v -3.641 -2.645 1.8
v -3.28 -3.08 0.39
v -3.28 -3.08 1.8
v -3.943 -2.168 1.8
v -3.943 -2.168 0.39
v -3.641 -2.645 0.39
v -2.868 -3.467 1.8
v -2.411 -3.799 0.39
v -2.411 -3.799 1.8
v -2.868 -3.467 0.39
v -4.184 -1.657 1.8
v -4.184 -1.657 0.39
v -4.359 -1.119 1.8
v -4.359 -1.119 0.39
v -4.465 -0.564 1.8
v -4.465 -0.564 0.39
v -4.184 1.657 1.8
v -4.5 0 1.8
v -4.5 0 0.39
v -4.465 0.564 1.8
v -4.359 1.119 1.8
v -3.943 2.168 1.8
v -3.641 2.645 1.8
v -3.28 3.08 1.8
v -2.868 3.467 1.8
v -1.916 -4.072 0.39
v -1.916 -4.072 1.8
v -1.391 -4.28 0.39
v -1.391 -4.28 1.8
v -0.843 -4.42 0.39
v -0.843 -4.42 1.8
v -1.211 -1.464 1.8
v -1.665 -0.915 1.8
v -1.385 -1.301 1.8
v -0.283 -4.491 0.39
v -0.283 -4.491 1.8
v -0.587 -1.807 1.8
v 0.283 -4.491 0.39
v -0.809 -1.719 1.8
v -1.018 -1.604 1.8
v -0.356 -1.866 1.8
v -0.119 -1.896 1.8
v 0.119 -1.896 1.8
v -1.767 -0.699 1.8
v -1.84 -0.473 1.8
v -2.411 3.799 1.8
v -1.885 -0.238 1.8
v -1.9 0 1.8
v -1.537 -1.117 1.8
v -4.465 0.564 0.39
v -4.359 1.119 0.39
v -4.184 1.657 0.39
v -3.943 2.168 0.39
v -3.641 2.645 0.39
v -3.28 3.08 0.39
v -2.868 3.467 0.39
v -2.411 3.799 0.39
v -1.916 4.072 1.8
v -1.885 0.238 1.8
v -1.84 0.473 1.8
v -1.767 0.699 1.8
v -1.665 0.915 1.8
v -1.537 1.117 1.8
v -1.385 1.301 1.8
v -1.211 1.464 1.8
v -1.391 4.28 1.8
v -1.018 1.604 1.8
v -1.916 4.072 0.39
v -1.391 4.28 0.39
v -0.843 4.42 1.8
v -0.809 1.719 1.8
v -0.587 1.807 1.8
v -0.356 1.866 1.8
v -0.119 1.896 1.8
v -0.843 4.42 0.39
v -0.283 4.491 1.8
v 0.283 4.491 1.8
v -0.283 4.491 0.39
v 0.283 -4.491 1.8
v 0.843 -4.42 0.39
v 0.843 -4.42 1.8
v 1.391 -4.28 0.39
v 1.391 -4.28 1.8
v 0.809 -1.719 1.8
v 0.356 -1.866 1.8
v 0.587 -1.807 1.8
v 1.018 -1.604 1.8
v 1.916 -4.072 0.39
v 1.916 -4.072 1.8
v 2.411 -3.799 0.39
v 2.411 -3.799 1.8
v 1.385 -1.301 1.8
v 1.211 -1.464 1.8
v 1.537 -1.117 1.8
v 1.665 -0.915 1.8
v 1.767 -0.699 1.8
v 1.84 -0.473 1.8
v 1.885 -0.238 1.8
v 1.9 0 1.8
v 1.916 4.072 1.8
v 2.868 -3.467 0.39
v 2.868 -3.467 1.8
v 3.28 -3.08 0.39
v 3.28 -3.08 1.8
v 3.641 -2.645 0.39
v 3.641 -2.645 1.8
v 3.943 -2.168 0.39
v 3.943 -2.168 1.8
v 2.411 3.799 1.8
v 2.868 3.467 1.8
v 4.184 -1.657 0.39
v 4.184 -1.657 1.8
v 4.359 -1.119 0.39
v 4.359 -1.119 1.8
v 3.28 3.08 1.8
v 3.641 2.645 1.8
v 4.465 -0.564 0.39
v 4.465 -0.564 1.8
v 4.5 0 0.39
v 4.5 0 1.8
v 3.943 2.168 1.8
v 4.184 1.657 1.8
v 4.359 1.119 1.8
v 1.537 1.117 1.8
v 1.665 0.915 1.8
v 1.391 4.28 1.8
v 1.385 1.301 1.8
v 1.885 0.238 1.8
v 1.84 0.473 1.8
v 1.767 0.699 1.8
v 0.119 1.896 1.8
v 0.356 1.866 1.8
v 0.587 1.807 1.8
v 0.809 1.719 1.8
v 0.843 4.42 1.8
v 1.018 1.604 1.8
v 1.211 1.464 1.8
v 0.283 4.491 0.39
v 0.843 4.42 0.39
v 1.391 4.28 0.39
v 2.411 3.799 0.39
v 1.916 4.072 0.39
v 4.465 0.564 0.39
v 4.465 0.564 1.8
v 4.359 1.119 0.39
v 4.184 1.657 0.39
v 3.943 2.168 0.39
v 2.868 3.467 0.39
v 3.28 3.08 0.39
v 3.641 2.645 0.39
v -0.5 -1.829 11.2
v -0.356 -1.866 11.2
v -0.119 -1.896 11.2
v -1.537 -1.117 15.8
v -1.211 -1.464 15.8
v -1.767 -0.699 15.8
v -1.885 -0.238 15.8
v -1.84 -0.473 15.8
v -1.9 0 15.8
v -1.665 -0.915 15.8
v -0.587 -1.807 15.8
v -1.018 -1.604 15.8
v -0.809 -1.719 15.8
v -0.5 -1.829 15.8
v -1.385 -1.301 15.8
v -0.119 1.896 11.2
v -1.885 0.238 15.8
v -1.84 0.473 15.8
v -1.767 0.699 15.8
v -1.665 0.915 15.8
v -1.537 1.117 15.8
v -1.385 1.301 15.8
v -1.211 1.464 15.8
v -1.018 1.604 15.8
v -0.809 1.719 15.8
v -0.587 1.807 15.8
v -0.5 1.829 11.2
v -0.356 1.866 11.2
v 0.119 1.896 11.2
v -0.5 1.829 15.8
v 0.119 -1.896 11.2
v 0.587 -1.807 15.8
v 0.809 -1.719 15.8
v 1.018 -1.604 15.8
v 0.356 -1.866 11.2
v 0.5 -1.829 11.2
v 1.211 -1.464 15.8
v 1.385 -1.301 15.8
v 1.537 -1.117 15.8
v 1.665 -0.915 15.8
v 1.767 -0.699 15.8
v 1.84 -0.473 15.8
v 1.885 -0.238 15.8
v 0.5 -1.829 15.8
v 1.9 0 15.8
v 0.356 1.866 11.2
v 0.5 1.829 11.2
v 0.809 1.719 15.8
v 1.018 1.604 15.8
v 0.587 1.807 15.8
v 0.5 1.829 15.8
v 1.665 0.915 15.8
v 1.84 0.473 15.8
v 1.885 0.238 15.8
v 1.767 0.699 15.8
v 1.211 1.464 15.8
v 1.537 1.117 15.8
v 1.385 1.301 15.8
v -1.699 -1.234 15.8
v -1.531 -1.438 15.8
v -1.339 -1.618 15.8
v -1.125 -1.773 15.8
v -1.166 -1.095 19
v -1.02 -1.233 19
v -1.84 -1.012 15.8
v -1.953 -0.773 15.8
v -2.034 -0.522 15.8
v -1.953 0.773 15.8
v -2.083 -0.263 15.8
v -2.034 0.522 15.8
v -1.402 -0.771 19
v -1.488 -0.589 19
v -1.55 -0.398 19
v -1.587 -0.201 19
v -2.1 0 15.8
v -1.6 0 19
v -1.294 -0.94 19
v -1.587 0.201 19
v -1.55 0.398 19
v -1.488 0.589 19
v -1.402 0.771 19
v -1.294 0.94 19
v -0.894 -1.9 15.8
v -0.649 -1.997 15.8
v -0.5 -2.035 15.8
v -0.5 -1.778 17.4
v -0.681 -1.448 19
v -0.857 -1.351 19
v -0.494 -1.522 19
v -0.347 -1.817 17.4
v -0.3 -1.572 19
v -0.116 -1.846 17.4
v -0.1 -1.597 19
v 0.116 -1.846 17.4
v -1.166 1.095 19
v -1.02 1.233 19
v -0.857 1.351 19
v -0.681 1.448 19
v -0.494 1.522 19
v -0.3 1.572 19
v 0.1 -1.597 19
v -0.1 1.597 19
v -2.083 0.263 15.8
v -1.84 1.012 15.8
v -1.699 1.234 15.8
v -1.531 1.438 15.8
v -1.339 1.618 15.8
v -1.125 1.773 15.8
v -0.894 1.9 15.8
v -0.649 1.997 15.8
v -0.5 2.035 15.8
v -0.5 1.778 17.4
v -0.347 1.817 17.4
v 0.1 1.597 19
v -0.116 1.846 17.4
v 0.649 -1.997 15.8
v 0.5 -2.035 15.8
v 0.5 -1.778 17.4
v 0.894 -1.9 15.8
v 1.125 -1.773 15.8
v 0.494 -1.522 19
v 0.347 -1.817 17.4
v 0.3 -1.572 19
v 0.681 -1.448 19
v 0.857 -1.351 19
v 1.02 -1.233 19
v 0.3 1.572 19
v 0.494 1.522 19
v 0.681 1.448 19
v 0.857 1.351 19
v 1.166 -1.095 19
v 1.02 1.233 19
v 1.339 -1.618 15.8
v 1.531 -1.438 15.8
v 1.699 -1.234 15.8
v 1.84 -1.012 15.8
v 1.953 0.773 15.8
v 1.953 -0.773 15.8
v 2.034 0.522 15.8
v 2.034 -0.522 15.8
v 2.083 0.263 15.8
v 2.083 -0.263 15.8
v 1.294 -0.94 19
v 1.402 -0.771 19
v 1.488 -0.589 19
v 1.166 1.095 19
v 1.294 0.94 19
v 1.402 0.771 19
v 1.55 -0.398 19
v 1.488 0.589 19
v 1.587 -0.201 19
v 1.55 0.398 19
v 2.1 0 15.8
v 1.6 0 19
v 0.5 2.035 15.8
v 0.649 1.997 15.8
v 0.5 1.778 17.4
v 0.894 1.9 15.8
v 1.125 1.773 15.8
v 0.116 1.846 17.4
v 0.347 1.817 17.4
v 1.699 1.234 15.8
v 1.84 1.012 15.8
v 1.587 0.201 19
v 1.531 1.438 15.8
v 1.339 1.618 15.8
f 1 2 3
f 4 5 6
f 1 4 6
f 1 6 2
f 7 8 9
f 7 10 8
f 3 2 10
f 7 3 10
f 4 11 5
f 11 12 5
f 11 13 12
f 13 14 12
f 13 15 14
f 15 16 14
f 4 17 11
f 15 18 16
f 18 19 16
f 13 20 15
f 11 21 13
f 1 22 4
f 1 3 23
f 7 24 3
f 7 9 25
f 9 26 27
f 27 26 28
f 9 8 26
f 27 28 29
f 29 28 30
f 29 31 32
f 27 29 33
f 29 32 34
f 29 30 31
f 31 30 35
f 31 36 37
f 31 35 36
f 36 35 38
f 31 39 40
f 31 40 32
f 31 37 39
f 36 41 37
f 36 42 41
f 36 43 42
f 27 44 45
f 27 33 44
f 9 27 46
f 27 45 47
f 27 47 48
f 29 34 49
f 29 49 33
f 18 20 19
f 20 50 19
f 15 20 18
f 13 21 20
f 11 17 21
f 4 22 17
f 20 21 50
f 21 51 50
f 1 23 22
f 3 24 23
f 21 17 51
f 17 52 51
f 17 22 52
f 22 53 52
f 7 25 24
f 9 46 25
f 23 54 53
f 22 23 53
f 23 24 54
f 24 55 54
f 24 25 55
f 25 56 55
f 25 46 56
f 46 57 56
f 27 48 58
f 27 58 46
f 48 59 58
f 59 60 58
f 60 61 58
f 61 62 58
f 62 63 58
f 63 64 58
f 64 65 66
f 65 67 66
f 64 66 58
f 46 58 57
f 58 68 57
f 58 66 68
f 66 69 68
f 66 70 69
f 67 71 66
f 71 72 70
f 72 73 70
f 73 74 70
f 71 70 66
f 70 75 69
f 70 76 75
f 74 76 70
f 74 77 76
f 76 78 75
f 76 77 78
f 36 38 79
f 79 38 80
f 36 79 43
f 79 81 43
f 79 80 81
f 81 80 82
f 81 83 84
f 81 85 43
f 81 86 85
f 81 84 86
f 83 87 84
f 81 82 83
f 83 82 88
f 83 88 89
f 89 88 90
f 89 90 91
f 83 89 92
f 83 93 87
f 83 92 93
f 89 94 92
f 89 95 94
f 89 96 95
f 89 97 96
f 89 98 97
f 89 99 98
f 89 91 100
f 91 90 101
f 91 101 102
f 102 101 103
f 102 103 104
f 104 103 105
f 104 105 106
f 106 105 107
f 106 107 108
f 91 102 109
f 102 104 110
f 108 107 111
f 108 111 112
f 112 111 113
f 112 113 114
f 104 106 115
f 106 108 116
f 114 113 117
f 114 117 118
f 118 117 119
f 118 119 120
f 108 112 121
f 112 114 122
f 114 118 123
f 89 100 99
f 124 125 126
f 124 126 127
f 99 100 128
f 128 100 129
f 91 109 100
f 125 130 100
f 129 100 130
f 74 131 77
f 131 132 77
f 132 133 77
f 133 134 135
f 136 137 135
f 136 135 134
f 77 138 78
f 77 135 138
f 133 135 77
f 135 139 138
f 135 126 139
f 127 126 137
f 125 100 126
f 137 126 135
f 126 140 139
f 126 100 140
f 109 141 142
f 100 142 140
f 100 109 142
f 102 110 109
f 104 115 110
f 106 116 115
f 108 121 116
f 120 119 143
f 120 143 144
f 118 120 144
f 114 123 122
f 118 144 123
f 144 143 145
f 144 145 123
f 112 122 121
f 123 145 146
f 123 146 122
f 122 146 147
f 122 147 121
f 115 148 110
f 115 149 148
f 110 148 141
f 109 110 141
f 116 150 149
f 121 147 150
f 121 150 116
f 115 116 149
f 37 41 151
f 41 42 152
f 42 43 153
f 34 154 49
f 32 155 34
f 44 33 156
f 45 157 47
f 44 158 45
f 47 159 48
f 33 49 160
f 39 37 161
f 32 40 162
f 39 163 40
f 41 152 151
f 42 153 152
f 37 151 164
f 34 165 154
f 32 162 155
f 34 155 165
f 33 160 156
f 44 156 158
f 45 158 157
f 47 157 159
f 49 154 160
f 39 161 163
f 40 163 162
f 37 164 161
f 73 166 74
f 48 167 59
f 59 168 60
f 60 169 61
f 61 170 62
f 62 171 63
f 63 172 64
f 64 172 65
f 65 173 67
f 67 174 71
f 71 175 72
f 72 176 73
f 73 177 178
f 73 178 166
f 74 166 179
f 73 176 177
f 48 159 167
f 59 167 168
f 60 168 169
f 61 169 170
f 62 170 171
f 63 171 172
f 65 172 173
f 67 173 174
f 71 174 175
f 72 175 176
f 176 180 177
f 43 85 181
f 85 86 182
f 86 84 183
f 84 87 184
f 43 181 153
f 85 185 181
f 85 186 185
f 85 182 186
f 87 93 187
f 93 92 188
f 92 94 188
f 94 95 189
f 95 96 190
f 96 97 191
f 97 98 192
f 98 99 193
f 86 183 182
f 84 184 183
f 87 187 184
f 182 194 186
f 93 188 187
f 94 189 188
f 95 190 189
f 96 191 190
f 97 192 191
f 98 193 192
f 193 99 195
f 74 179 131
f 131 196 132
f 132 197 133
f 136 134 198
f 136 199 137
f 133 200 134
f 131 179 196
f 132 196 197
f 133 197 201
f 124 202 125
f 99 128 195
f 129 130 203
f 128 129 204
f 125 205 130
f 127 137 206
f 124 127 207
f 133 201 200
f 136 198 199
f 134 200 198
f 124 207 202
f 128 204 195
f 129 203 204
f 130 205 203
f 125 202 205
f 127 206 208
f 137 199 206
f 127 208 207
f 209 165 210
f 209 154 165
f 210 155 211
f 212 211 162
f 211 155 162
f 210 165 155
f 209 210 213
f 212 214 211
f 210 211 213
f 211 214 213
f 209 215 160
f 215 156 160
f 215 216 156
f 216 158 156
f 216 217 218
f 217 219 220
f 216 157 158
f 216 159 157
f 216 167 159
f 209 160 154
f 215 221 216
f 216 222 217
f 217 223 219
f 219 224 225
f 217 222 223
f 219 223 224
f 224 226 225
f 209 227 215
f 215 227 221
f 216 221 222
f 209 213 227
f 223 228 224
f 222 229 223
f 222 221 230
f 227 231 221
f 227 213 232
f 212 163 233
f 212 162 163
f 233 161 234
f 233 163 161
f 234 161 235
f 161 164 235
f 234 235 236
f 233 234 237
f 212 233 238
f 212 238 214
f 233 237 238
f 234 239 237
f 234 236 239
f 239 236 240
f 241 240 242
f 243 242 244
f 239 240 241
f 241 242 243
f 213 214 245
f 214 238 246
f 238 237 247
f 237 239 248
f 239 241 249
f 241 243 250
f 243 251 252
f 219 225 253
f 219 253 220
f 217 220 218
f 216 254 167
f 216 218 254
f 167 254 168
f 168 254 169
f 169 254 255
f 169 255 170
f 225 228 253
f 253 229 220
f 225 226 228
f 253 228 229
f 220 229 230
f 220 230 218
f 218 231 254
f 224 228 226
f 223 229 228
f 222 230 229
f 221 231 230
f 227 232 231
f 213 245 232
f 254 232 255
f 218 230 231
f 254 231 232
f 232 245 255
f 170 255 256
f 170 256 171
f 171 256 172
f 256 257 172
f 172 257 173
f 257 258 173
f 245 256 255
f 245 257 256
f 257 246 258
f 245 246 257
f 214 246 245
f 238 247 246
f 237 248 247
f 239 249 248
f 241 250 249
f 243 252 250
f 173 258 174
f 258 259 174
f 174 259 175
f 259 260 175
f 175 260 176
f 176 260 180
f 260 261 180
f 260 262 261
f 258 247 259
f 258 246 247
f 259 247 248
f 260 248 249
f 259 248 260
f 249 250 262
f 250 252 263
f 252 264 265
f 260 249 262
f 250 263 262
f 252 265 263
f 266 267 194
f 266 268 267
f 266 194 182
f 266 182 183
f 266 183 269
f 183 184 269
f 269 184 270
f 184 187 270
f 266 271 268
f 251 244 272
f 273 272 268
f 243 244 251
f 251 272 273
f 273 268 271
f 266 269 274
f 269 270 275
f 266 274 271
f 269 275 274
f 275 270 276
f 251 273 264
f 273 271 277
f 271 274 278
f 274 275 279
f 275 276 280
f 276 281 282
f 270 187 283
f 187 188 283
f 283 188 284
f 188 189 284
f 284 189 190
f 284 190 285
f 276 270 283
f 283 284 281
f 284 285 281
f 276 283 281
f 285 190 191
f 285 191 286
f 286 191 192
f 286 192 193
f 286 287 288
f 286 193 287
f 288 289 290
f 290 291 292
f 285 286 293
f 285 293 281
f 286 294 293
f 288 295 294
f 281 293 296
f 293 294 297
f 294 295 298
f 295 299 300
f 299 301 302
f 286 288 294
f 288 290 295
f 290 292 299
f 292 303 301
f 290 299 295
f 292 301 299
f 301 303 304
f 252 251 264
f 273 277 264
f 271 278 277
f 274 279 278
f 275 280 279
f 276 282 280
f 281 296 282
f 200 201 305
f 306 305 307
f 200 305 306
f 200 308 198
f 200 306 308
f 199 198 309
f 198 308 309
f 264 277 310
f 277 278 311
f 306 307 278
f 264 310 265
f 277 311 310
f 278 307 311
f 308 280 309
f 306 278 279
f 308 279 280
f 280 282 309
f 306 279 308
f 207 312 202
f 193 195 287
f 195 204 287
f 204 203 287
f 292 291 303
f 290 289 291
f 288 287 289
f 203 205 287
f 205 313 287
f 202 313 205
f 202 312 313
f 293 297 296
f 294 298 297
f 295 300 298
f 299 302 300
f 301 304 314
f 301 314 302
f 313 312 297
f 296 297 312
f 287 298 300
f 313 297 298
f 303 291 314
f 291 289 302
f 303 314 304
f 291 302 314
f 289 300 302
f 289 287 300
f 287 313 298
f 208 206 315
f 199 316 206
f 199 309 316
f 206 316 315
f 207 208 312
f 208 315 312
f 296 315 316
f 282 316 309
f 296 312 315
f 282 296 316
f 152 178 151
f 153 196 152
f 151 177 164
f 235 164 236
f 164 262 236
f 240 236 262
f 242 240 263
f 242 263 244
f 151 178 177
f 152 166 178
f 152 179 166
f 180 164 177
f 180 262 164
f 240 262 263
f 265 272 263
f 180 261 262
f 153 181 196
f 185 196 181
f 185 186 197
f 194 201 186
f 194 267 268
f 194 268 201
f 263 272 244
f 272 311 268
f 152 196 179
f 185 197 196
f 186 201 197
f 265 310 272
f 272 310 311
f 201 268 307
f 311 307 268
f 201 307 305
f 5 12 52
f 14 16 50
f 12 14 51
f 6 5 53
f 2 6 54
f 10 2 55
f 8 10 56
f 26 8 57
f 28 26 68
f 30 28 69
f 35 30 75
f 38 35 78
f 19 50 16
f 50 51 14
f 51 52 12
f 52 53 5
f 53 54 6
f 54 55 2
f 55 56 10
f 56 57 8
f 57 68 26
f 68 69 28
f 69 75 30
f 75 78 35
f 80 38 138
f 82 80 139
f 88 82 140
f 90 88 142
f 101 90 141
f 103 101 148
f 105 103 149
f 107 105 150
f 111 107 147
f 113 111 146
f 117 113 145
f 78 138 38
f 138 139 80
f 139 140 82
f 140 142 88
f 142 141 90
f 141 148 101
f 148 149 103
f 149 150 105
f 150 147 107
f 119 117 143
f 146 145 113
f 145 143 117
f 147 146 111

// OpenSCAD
// ====================================================================
// [PRINT 08-C] Standalone 3D-Printable Precision Axle Pin (3.8mm Shaft)
//
// Engineering Specifications:
// - Station Clevis Total Outer Span: 14.0mm (4mm Ear1 + 6mm Channel + 4mm Ear2)
// - Shaft Diameter: 3.8mm (Reduced slightly for effortless insertion through bores)
// - Shaft Length: EXACTLY 14.0mm (0.0mm extra protrusion past clevis walls!)
// - Head: 9.0mm flat disk x 1.8mm thickness (Rests flush against Ear 1 outer face)
// - Tip: 4.2mm split-prong barb tip for snap-fitting retaining cap
// ====================================================================

$fn = 50;

pin_shaft_d  = 3.8;   // 3.8mm rod shaft (fits sheave & clevis bores with zero binding)
pin_length   = 14.0;  // EXACT 14.0mm shaft length matching total clevis span
head_d       = 9.0;   // Flat head disk diameter
head_th      = 1.8;   // Flat head thickness
tip_barb_d   = 4.2;   // Split-prong barb tip diameter
tip_length   = 3.2;   // Tip length

module precision_axle_pin() {
    difference() {
        union() {
            // Flat base head resting flat at Z = 0
            cylinder(d = head_d, h = head_th);
            
            // Main 3.8mm rod shaft column (exact 14.0mm length)
            translate([0, 0, head_th])
                cylinder(d = pin_shaft_d, h = pin_length);

            // Split-prong snap barb tip at end of shaft
            translate([0, 0, head_th + pin_length])
                cylinder(d1 = tip_barb_d, d2 = pin_shaft_d - 0.6, h = tip_length);
        }

        // Center flex-slit (gives spring flex space for cap snap-fit)
        translate([0, 0, head_th + pin_length - 1.5])
            cube([1.0, tip_barb_d + 2.0, tip_length + 3.0], center = true);

        // Self-guiding chamfer on base head
        translate([0, 0, -0.01])
            cylinder(d1 = head_d + 1.0, d2 = head_d, h = 0.4);
    }
}

module axle_pin() {
    precision_axle_pin();
}

precision_axle_pin();
